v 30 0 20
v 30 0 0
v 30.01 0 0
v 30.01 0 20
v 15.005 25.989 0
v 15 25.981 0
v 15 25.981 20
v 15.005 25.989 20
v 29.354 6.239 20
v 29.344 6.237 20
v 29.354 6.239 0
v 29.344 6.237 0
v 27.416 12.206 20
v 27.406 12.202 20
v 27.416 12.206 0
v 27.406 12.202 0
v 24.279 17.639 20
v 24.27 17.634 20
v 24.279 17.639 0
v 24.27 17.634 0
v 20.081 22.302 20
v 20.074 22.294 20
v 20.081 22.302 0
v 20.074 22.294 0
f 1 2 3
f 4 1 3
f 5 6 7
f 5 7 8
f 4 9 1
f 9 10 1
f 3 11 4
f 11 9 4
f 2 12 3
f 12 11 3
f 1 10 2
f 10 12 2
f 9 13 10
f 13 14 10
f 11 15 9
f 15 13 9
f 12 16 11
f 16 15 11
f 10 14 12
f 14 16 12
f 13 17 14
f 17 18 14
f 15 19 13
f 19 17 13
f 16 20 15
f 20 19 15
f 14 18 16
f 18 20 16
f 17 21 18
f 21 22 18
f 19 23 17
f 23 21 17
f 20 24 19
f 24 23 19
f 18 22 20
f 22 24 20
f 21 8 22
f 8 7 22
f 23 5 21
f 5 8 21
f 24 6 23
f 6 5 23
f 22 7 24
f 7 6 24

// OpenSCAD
// Parameters
radius = 30;     // Outer radius of the wedge
height = 20;     // Height of the wedge
angle = 60;      // Angle of the wedge segment (360 / 6)

// Module to create a single wedge segment
module wedge_segment() {
    rotate_extrude(angle=angle)
        translate([radius, 0, 0])
            square([0.01, height], center=false); // Thin rectangle to extrude
}

// Render the wedge
wedge_segment();
